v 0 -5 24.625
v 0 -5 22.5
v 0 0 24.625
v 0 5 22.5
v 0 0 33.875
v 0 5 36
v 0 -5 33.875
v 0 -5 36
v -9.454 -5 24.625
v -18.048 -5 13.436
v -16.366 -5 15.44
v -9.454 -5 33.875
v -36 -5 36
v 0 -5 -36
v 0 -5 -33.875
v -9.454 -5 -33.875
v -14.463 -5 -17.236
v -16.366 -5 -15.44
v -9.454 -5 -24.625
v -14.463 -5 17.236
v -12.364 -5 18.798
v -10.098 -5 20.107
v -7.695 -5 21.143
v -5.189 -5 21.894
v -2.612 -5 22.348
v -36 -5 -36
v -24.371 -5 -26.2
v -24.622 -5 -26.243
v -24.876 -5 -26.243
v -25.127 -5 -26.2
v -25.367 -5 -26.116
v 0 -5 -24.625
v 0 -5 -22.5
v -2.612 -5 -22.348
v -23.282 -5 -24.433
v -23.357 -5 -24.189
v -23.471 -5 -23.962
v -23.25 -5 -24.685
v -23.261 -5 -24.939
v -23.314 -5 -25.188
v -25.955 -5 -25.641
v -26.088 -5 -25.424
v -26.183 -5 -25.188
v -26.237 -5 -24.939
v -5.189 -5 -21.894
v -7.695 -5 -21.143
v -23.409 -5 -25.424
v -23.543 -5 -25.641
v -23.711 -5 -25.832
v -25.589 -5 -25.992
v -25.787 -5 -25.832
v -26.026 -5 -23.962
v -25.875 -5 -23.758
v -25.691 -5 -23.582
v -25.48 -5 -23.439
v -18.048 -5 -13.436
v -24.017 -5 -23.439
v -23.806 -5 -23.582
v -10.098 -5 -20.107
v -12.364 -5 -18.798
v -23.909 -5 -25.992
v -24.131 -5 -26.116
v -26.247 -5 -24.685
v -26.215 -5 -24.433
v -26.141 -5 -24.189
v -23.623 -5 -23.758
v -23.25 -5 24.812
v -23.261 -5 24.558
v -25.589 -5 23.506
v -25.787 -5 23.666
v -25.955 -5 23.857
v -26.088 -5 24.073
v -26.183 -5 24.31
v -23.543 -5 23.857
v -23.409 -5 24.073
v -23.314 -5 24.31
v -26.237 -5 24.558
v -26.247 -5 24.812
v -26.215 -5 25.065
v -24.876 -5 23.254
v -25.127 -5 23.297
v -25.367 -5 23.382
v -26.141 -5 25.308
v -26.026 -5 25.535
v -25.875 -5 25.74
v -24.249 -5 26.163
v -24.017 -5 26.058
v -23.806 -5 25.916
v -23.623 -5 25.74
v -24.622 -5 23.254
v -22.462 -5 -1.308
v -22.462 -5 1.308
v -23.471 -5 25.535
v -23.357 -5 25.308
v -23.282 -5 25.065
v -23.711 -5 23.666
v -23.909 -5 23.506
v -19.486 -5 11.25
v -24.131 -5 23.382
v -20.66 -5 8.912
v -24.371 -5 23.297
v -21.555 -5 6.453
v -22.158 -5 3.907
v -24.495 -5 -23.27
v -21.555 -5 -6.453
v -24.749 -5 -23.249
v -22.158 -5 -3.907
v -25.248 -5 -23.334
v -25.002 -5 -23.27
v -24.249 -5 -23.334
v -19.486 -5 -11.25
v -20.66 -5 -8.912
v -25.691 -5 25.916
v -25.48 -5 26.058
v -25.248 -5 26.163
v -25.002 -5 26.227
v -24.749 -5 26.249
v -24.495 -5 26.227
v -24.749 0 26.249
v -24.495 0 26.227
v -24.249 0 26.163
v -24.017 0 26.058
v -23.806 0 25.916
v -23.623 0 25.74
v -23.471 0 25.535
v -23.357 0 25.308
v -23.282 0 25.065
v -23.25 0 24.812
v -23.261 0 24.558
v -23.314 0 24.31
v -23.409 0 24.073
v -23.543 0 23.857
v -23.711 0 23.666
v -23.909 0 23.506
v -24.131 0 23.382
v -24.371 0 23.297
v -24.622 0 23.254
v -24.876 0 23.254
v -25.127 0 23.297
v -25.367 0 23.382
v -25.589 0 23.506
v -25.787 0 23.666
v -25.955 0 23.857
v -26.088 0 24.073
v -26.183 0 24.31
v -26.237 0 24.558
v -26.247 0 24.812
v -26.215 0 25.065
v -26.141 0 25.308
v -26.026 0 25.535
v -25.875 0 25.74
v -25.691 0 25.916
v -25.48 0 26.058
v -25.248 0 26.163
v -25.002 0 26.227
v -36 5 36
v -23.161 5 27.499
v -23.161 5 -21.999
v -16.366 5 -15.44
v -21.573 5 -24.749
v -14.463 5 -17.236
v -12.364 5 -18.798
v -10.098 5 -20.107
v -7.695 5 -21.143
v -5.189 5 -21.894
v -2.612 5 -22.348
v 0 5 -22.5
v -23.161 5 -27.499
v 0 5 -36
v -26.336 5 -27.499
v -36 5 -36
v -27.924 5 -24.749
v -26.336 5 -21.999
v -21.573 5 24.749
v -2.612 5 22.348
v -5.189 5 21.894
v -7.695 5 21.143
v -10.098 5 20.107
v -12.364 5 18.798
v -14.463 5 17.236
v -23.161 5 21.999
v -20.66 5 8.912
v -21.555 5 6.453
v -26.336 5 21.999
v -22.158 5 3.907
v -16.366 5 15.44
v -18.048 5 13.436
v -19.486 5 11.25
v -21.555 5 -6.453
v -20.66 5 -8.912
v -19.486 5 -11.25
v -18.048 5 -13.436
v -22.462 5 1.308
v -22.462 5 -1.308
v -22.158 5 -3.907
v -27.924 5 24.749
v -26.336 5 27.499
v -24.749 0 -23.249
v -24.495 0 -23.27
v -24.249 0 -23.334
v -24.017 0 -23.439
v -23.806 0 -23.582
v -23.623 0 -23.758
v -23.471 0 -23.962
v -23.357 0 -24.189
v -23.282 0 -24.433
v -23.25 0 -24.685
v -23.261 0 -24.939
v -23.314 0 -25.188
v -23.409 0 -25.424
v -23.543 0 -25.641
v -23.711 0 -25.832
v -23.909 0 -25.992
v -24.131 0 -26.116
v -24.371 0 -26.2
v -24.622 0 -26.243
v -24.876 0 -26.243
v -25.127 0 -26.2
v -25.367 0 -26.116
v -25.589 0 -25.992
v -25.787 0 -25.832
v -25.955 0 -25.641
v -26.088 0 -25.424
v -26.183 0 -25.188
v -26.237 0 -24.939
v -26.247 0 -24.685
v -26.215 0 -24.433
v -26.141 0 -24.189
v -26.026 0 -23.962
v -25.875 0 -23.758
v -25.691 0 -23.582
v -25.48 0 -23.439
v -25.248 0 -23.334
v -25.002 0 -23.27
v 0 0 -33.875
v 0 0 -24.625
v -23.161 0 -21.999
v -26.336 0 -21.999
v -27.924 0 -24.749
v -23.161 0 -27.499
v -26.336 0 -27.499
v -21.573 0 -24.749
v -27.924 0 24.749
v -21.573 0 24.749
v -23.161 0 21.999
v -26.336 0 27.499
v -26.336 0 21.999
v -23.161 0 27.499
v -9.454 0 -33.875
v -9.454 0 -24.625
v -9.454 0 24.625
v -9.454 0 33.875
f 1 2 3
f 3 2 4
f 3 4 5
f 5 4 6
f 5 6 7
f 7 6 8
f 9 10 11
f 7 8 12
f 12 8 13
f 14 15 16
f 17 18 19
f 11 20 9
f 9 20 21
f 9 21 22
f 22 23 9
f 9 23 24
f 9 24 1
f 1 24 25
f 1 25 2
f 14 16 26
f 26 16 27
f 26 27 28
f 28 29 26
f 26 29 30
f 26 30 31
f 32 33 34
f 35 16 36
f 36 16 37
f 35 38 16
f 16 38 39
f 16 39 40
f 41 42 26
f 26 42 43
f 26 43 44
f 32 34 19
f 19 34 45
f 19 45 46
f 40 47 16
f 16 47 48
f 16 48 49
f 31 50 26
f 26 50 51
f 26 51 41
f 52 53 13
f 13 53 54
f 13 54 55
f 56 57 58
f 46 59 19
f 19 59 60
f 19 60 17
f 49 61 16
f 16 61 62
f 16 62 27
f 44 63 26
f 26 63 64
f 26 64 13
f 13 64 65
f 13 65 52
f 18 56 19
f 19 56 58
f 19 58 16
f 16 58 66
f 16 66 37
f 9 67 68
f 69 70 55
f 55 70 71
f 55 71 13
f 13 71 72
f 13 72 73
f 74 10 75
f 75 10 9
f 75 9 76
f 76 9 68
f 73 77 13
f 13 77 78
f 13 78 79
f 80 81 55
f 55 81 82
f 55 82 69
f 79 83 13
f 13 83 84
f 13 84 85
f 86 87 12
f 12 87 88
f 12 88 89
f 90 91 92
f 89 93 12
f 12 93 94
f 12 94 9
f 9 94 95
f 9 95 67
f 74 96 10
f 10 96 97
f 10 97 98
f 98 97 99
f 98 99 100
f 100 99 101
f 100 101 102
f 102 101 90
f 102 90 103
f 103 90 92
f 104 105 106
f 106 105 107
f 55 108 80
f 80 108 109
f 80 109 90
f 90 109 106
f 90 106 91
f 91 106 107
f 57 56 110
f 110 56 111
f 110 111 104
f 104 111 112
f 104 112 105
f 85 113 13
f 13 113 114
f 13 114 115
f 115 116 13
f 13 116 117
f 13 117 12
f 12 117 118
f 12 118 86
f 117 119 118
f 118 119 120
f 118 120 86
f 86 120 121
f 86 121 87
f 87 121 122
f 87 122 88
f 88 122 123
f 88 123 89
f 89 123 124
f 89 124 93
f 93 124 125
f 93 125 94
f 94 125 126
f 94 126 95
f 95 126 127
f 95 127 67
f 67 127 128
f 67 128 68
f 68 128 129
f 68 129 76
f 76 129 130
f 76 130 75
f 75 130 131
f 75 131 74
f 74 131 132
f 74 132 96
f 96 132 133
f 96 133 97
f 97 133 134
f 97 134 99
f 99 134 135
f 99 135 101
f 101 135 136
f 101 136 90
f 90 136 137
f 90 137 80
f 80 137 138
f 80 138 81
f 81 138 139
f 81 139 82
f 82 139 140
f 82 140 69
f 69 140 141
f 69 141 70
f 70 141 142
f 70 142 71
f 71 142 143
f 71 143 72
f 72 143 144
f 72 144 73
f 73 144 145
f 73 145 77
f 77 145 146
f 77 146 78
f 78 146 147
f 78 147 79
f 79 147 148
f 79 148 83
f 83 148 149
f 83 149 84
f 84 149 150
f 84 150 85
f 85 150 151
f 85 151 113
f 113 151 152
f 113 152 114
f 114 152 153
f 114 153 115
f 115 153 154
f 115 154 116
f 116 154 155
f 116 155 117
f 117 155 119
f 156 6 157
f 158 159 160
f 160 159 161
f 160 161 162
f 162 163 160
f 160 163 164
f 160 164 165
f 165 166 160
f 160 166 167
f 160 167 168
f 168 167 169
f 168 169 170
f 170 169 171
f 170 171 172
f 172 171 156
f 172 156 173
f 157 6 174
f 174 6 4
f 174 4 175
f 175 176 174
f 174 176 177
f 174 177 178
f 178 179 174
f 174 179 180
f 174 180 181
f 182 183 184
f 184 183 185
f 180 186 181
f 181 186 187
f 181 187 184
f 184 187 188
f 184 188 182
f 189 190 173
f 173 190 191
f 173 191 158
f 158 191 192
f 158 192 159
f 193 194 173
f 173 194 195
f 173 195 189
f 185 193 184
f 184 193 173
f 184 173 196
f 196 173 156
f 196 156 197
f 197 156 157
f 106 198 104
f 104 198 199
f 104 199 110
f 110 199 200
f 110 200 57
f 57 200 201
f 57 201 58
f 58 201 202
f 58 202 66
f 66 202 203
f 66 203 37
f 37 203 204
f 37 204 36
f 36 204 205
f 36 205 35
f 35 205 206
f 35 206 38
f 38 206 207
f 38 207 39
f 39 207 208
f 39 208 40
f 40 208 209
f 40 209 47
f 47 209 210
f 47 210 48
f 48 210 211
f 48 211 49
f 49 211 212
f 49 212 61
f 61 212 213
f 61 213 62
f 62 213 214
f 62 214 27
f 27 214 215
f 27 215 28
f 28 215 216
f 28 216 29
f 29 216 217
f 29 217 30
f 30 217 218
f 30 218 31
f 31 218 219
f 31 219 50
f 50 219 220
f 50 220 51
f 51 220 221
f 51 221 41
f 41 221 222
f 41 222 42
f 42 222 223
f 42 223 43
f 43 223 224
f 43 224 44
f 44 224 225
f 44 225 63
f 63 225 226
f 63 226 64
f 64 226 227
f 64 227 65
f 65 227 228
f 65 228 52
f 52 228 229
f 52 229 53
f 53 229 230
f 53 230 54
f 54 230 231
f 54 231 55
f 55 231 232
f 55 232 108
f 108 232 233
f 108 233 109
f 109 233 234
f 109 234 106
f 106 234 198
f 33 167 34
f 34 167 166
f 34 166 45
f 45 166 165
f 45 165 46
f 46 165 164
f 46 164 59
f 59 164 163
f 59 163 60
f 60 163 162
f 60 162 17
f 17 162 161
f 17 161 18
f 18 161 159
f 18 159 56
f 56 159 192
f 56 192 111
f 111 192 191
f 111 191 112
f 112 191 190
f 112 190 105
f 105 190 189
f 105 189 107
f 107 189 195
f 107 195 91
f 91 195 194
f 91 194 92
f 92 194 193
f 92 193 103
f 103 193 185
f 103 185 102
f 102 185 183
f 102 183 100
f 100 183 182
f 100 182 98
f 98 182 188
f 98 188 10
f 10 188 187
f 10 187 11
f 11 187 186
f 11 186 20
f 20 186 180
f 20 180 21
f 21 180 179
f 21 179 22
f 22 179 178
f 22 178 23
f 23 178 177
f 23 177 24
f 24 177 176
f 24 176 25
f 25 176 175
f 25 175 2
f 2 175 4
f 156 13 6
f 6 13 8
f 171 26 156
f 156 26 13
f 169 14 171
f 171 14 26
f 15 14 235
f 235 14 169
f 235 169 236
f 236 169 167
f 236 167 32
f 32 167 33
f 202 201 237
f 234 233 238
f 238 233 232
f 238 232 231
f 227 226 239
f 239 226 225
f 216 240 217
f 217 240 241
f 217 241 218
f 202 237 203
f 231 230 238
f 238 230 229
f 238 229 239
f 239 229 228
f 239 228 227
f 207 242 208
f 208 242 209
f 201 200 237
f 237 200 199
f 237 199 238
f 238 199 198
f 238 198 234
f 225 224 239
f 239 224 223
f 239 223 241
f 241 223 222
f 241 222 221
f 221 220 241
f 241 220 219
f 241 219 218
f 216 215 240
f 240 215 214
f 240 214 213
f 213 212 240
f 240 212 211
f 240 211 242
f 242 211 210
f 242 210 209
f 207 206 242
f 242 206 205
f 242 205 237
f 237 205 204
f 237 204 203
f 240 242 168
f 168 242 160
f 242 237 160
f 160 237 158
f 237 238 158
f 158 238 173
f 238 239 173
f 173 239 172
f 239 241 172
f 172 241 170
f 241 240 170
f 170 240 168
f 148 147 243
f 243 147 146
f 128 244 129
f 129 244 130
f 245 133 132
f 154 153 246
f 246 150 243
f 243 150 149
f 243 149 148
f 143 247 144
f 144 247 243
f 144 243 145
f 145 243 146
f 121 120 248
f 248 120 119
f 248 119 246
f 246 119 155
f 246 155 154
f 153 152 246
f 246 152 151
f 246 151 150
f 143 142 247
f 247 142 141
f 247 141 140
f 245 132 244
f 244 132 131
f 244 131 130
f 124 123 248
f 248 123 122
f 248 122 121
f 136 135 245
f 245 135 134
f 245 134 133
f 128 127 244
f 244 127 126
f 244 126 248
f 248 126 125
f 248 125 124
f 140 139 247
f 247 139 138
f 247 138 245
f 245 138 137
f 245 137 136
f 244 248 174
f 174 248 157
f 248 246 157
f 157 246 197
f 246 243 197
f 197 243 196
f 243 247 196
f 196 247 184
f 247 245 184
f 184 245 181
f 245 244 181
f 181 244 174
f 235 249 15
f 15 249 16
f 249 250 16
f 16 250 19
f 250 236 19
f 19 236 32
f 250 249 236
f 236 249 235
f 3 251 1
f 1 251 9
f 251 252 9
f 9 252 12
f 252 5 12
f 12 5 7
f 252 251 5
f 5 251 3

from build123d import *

# Parameters (mm, degrees)
BOSS_EXTRUDE1_DEPTH      = 5
BOSS_EXTRUDE1_DEPTH_BACK = 5
SKETCH1_R                = 1.5
CUT_EXTRUDE1_DEPTH       = 5
SKETCH4_W                = 9.454278837
SKETCH4_H                = 9.25
CUT_EXTRUDE2_DEPTH       = 5


with BuildPart() as part:
    # Sketch1 → Boss-Extrude1 (new, two sides: drawn at the far end of the back side and taken through both)
    with BuildSketch(Plane(origin=(0, 0, 0), x_dir=(1, 0, 0), z_dir=(0, 1, 0)).offset(-BOSS_EXTRUDE1_DEPTH_BACK)):
        with BuildLine():
            Line((0, 22.5), (0, 36))
            Line((0, 36), (-36, 36))
            Line((-36, 36), (-36, -36))
            Line((-36, -36), (0, -36))
            Line((0, -36), (0, -22.5))
            ThreePointArc((0, -22.5), (-22.5, 0), (0, 22.5))
        make_face()
        with Locations((-24.748737342, -24.748737342)):
            Circle(SKETCH1_R, mode=Mode.SUBTRACT)
        with Locations((-24.748737342, 24.748737342)):
            Circle(SKETCH1_R, mode=Mode.SUBTRACT)
    extrude(amount=BOSS_EXTRUDE1_DEPTH + BOSS_EXTRUDE1_DEPTH_BACK)

    # Sketch2 → Cut-Extrude1 (cut)
    with BuildSketch(Plane(origin=(0, 5, 0), x_dir=(1, 0, 0), z_dir=(0, 1, 0))):
        Polygon((-23.161024101, 27.498737342), (-26.336450582, 27.498737342), (-27.924163822, 24.748737342), (-26.336450582, 21.998737342), (-23.161024101, 21.998737342), (-21.573310861, 24.748737342), align=None)
    cut_extrude1 = extrude(amount=-CUT_EXTRUDE1_DEPTH, mode=Mode.SUBTRACT)

    # Mirror1: Cut-Extrude1 across plane
    add(cut_extrude1.mirror(Plane.XY), mode=Mode.SUBTRACT)

    # Sketch4 → Cut-Extrude2 (cut)
    with BuildSketch(Plane.XZ.offset(5)):
        with Locations((-4.727139419, -29.25)):
            Rectangle(SKETCH4_W, SKETCH4_H)
    cut_extrude2 = extrude(amount=-CUT_EXTRUDE2_DEPTH, mode=Mode.SUBTRACT)

    # Mirror3: Cut-Extrude2 across plane
    add(cut_extrude2.mirror(Plane.XY), mode=Mode.SUBTRACT)


solid = part.part
